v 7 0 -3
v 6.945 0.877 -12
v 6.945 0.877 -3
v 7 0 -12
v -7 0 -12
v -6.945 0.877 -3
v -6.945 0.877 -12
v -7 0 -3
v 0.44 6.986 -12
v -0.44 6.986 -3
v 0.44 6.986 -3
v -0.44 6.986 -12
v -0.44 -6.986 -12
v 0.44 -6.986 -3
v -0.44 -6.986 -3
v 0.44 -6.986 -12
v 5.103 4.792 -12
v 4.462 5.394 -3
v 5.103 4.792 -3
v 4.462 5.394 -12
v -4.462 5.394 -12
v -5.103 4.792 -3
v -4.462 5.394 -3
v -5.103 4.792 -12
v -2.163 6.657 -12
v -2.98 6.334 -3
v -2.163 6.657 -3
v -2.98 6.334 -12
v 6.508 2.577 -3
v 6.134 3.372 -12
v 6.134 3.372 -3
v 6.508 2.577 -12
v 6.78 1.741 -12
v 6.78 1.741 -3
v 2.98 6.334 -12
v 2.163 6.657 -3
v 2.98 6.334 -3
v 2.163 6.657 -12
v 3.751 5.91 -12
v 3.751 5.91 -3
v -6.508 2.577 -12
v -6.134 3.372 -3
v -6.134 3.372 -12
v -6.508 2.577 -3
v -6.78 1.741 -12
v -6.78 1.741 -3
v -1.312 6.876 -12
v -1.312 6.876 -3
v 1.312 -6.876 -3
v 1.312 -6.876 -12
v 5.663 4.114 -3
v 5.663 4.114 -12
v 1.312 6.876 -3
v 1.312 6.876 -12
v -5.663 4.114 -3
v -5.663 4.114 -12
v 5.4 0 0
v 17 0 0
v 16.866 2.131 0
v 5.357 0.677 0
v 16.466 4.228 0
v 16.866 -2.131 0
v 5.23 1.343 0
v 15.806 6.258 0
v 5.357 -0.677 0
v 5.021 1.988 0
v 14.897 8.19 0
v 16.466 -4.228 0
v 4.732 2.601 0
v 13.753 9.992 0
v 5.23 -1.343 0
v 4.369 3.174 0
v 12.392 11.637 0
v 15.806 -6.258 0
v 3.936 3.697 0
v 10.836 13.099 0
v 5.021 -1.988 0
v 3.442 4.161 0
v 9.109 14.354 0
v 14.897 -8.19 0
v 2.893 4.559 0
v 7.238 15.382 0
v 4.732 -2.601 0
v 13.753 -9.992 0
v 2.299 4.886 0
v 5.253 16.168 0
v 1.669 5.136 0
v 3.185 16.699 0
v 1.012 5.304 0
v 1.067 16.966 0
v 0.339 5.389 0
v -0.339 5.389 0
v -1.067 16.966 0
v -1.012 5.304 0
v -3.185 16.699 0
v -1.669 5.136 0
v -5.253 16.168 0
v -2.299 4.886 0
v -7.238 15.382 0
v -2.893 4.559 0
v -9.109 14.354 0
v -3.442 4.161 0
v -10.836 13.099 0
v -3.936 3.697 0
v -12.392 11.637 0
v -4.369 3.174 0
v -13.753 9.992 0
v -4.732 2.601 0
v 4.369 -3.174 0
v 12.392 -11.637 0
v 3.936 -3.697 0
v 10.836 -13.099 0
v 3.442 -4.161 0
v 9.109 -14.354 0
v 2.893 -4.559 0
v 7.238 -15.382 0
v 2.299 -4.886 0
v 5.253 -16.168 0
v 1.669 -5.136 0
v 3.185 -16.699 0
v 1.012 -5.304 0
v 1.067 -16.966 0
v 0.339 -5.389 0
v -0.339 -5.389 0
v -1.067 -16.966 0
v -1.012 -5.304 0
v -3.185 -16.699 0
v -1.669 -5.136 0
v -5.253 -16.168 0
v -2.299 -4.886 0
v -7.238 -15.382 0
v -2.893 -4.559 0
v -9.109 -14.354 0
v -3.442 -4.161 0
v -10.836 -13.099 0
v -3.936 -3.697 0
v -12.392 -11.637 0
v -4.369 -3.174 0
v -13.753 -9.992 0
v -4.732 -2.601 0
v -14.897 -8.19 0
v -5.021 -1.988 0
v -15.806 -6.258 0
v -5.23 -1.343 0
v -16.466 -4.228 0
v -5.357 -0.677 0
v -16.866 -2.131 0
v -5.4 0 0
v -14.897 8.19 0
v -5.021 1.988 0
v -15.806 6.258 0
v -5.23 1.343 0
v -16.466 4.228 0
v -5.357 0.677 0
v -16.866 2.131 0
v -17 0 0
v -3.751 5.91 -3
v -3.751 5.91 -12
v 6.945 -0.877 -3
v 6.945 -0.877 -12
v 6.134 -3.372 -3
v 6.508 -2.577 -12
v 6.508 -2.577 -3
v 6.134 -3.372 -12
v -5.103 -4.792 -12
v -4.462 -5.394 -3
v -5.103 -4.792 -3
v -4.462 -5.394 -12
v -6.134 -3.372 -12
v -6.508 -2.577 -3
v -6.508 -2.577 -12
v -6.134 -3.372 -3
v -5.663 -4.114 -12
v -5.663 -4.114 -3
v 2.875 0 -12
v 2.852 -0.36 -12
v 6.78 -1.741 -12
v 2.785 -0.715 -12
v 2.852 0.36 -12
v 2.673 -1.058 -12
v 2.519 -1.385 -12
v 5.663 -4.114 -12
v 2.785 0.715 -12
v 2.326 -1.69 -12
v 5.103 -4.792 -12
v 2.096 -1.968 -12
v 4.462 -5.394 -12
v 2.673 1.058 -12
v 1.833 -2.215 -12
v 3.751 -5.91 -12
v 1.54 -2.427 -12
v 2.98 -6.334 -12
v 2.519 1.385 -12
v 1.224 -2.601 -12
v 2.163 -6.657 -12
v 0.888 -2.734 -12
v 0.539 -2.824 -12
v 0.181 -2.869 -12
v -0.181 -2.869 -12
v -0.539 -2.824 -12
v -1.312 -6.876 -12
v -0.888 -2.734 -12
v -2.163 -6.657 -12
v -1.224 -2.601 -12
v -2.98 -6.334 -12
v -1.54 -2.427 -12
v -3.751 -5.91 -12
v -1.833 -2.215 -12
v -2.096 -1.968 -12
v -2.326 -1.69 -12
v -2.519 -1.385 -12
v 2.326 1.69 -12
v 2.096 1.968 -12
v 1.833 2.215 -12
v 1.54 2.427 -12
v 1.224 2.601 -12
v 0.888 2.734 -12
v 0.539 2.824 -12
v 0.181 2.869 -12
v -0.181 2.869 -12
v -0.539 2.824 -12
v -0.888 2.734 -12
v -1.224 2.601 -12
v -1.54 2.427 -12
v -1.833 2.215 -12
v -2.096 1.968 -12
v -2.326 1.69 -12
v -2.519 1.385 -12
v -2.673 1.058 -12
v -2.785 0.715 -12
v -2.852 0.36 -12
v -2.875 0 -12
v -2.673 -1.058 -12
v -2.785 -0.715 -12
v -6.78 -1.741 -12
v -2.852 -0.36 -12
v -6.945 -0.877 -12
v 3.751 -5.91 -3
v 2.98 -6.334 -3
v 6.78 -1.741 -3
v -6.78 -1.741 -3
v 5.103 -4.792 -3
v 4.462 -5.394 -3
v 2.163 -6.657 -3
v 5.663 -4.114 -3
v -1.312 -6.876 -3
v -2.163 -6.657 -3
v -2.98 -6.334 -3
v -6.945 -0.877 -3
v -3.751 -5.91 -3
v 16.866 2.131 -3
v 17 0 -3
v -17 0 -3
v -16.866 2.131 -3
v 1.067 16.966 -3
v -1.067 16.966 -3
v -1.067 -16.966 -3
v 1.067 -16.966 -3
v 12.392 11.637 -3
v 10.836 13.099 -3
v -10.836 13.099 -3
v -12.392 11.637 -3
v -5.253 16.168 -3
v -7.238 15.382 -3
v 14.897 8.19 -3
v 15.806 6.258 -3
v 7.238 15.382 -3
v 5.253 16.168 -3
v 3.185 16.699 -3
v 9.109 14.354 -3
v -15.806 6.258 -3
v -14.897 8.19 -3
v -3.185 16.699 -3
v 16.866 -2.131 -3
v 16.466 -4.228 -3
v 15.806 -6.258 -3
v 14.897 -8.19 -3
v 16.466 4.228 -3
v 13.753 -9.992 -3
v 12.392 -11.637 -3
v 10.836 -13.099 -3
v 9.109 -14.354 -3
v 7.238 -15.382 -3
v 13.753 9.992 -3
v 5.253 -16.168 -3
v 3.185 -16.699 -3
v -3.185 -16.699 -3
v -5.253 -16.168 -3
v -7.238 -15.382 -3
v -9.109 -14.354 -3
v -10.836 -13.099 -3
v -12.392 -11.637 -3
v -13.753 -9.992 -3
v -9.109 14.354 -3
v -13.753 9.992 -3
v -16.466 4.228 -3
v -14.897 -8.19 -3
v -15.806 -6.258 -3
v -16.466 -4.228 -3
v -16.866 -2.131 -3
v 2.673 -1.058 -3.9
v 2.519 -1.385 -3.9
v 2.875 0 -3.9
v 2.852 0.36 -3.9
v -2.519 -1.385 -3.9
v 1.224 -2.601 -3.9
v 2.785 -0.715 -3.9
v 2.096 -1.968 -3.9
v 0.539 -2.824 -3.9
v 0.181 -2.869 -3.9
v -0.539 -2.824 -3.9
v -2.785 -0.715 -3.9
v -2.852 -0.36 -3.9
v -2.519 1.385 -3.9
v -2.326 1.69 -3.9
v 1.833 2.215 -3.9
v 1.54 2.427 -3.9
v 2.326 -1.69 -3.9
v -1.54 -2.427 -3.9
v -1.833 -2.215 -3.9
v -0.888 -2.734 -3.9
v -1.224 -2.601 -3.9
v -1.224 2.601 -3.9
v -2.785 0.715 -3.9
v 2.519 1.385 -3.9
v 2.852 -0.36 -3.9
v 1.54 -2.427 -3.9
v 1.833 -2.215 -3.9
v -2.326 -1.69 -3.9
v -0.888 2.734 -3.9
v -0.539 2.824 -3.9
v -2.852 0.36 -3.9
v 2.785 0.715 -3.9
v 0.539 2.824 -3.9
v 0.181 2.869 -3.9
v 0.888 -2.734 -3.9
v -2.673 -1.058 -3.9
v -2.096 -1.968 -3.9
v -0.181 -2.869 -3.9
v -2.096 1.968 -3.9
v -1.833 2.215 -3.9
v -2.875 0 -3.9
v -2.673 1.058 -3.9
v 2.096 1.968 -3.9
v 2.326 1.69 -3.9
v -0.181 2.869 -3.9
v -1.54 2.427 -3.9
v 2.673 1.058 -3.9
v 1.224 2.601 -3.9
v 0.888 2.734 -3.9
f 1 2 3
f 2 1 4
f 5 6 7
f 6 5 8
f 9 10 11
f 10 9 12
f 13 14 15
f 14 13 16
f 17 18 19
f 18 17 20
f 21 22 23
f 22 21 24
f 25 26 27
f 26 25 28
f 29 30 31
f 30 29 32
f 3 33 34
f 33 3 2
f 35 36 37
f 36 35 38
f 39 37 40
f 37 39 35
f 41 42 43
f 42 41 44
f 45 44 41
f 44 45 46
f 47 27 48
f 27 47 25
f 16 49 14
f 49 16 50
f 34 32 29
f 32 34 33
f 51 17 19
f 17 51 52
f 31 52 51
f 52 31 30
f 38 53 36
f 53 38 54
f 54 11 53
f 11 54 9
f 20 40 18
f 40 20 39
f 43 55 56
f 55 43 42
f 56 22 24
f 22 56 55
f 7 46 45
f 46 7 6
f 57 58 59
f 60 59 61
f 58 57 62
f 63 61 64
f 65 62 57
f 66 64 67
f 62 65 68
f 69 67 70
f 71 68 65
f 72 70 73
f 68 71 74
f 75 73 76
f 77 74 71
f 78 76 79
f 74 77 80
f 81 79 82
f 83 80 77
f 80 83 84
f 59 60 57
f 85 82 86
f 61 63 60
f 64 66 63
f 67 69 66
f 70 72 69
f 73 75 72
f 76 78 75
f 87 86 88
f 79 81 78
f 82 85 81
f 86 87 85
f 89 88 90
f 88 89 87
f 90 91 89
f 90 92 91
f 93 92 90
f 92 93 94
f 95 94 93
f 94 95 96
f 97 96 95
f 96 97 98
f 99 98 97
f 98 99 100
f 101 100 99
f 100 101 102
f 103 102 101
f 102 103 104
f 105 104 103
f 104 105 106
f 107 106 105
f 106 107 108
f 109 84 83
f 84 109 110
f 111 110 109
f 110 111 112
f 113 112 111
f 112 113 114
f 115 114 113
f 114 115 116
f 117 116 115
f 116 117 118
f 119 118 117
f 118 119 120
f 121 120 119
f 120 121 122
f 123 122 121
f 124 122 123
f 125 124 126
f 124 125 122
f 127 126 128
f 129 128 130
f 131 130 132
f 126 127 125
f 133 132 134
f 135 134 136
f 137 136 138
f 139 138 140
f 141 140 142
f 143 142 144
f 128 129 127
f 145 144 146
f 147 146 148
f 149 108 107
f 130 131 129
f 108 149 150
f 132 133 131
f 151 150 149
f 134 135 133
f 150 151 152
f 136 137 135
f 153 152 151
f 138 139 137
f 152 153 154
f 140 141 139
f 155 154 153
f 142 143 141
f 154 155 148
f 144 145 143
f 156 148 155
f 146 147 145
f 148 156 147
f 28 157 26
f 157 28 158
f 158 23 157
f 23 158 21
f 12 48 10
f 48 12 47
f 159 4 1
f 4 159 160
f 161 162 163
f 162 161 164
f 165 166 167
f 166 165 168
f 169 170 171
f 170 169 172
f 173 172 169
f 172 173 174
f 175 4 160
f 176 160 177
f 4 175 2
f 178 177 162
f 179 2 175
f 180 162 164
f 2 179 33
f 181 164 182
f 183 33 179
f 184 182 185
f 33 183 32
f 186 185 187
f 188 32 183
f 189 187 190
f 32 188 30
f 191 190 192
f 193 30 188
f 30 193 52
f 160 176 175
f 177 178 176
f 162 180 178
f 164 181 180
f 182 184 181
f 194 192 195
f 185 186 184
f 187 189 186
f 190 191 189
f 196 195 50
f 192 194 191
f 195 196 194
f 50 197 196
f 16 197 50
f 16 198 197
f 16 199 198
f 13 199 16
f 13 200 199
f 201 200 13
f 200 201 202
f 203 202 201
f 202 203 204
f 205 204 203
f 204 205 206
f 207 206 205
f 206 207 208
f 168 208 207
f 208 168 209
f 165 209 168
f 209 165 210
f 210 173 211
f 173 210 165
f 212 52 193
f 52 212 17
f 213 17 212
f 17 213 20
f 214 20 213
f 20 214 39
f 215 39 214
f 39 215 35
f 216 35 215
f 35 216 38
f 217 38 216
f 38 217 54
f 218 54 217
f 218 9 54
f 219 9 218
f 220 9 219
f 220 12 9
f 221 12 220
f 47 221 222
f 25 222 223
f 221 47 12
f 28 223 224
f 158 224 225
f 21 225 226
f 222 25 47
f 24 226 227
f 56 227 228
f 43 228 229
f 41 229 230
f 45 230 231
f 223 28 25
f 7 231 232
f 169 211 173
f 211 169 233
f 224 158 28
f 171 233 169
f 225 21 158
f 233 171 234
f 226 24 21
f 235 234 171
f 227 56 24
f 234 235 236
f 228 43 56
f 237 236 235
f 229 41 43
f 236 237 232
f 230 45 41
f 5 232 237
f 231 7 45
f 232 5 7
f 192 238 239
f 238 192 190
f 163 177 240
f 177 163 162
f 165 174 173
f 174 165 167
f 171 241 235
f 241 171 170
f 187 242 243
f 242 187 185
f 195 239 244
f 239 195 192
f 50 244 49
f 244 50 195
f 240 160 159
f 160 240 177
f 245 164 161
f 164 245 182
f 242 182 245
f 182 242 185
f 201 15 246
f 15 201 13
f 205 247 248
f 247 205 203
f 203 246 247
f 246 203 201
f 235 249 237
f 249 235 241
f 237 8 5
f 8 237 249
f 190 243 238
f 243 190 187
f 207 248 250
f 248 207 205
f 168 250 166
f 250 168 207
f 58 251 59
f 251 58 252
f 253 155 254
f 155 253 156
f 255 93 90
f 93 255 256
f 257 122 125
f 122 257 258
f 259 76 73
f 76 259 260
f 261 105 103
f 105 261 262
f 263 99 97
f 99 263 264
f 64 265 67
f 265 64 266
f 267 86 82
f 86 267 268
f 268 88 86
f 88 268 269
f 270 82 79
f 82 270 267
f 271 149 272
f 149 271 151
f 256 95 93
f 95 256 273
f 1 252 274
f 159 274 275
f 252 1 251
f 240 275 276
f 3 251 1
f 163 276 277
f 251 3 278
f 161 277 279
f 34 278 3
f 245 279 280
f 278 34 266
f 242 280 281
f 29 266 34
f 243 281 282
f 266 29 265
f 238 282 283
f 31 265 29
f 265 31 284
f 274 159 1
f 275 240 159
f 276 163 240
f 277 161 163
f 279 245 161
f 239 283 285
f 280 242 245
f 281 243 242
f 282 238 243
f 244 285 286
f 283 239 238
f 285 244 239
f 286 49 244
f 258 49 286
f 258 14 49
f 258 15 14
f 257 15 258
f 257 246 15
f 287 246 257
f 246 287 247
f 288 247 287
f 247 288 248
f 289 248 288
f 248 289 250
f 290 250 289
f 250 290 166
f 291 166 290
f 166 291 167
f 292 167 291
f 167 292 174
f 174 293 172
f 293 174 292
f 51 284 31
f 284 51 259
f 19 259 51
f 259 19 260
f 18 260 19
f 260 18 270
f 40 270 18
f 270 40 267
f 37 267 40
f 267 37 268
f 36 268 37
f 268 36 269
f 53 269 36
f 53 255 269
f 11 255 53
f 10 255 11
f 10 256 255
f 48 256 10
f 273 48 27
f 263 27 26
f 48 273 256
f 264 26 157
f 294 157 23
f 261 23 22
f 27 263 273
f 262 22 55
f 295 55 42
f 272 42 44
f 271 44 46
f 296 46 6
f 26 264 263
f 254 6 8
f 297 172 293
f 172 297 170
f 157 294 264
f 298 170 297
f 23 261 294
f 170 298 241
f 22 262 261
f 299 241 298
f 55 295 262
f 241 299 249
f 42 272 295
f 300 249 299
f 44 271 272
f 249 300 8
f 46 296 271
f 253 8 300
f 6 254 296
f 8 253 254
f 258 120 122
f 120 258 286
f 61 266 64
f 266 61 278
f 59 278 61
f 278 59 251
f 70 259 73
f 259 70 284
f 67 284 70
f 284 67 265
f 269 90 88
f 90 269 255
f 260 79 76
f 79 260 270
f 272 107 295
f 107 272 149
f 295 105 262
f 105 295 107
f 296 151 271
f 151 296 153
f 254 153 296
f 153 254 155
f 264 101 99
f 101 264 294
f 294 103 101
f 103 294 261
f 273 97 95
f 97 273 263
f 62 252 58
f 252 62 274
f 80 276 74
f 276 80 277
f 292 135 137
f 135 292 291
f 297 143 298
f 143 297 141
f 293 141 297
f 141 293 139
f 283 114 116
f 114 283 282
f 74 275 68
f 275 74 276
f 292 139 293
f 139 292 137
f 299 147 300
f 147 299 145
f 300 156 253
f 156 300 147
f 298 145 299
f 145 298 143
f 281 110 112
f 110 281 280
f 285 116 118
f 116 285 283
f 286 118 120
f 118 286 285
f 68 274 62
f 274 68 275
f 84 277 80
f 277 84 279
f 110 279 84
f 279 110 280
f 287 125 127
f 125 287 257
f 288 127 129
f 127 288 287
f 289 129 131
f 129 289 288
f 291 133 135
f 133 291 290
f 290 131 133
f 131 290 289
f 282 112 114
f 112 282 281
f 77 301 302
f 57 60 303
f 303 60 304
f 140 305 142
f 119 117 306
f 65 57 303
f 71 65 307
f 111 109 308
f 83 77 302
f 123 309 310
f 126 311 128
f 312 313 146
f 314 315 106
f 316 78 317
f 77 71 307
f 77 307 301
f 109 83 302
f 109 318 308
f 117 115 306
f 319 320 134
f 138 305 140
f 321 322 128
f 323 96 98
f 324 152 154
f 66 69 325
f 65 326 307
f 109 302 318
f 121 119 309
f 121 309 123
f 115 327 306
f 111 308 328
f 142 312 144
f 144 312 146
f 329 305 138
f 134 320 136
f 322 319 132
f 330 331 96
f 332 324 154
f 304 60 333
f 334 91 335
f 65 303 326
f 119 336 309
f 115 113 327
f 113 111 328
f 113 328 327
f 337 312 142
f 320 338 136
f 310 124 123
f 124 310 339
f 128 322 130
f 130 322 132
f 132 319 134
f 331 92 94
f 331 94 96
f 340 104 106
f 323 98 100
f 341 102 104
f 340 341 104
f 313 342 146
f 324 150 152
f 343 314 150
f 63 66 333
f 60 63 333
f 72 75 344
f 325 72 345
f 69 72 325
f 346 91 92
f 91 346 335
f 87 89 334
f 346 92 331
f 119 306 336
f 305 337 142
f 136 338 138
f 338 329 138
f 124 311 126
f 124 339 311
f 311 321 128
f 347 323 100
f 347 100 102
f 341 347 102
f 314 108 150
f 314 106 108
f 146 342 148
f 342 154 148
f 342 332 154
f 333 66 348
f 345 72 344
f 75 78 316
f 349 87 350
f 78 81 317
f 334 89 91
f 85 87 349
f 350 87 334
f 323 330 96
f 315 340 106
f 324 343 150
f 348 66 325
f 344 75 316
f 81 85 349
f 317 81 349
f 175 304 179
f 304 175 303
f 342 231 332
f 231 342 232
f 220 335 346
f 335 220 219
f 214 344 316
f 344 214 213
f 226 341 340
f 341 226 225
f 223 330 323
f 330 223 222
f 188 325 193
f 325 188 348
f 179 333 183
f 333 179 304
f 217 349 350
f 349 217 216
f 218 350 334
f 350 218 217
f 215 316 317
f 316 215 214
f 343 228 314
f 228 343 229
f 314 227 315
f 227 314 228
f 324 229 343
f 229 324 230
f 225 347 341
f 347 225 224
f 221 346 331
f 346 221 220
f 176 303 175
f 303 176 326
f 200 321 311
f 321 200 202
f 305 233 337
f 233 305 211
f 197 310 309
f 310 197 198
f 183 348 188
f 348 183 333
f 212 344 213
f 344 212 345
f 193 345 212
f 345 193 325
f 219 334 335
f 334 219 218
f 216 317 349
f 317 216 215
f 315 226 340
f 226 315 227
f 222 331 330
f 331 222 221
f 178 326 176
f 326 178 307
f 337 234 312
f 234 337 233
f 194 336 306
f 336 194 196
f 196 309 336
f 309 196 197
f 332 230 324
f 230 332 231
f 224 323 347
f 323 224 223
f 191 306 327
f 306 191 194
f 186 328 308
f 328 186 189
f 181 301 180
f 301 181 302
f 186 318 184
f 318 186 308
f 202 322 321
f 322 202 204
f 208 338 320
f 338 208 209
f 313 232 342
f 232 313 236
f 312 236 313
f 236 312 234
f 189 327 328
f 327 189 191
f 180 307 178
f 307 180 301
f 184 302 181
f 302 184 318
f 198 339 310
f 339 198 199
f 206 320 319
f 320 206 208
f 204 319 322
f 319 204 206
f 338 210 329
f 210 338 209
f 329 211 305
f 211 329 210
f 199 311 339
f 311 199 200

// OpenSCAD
$fn = 50;


difference() {
	union() {
		translate(v = [0, 0, -12.0000000000]) {
			cylinder(h = 12, r = 7.0000000000);
		}
		translate(v = [0, 0, -3.0000000000]) {
			cylinder(h = 3, r = 17.0000000000);
		}
	}
	union() {
		translate(v = [0, 0, 0]) {
			rotate(a = [0, 0, 0]) {
				difference() {
					union() {
						#translate(v = [0, 0, -12.0000000000]) {
							cylinder(h = 12, r = 2.6000000000);
						}
						#translate(v = [0, 0, -3.9000000000]) {
							cylinder(h = 3.9000000000, r1 = 2.8750000000, r2 = 5.4000000000);
						}
						#translate(v = [0, 0, -12.0000000000]) {
							cylinder(h = 12, r = 2.8750000000);
						}
						#translate(v = [0, 0, -12.0000000000]) {
							cylinder(h = 12, r = 2.6000000000);
						}
					}
					union();
				}
			}
		}
	}
}
